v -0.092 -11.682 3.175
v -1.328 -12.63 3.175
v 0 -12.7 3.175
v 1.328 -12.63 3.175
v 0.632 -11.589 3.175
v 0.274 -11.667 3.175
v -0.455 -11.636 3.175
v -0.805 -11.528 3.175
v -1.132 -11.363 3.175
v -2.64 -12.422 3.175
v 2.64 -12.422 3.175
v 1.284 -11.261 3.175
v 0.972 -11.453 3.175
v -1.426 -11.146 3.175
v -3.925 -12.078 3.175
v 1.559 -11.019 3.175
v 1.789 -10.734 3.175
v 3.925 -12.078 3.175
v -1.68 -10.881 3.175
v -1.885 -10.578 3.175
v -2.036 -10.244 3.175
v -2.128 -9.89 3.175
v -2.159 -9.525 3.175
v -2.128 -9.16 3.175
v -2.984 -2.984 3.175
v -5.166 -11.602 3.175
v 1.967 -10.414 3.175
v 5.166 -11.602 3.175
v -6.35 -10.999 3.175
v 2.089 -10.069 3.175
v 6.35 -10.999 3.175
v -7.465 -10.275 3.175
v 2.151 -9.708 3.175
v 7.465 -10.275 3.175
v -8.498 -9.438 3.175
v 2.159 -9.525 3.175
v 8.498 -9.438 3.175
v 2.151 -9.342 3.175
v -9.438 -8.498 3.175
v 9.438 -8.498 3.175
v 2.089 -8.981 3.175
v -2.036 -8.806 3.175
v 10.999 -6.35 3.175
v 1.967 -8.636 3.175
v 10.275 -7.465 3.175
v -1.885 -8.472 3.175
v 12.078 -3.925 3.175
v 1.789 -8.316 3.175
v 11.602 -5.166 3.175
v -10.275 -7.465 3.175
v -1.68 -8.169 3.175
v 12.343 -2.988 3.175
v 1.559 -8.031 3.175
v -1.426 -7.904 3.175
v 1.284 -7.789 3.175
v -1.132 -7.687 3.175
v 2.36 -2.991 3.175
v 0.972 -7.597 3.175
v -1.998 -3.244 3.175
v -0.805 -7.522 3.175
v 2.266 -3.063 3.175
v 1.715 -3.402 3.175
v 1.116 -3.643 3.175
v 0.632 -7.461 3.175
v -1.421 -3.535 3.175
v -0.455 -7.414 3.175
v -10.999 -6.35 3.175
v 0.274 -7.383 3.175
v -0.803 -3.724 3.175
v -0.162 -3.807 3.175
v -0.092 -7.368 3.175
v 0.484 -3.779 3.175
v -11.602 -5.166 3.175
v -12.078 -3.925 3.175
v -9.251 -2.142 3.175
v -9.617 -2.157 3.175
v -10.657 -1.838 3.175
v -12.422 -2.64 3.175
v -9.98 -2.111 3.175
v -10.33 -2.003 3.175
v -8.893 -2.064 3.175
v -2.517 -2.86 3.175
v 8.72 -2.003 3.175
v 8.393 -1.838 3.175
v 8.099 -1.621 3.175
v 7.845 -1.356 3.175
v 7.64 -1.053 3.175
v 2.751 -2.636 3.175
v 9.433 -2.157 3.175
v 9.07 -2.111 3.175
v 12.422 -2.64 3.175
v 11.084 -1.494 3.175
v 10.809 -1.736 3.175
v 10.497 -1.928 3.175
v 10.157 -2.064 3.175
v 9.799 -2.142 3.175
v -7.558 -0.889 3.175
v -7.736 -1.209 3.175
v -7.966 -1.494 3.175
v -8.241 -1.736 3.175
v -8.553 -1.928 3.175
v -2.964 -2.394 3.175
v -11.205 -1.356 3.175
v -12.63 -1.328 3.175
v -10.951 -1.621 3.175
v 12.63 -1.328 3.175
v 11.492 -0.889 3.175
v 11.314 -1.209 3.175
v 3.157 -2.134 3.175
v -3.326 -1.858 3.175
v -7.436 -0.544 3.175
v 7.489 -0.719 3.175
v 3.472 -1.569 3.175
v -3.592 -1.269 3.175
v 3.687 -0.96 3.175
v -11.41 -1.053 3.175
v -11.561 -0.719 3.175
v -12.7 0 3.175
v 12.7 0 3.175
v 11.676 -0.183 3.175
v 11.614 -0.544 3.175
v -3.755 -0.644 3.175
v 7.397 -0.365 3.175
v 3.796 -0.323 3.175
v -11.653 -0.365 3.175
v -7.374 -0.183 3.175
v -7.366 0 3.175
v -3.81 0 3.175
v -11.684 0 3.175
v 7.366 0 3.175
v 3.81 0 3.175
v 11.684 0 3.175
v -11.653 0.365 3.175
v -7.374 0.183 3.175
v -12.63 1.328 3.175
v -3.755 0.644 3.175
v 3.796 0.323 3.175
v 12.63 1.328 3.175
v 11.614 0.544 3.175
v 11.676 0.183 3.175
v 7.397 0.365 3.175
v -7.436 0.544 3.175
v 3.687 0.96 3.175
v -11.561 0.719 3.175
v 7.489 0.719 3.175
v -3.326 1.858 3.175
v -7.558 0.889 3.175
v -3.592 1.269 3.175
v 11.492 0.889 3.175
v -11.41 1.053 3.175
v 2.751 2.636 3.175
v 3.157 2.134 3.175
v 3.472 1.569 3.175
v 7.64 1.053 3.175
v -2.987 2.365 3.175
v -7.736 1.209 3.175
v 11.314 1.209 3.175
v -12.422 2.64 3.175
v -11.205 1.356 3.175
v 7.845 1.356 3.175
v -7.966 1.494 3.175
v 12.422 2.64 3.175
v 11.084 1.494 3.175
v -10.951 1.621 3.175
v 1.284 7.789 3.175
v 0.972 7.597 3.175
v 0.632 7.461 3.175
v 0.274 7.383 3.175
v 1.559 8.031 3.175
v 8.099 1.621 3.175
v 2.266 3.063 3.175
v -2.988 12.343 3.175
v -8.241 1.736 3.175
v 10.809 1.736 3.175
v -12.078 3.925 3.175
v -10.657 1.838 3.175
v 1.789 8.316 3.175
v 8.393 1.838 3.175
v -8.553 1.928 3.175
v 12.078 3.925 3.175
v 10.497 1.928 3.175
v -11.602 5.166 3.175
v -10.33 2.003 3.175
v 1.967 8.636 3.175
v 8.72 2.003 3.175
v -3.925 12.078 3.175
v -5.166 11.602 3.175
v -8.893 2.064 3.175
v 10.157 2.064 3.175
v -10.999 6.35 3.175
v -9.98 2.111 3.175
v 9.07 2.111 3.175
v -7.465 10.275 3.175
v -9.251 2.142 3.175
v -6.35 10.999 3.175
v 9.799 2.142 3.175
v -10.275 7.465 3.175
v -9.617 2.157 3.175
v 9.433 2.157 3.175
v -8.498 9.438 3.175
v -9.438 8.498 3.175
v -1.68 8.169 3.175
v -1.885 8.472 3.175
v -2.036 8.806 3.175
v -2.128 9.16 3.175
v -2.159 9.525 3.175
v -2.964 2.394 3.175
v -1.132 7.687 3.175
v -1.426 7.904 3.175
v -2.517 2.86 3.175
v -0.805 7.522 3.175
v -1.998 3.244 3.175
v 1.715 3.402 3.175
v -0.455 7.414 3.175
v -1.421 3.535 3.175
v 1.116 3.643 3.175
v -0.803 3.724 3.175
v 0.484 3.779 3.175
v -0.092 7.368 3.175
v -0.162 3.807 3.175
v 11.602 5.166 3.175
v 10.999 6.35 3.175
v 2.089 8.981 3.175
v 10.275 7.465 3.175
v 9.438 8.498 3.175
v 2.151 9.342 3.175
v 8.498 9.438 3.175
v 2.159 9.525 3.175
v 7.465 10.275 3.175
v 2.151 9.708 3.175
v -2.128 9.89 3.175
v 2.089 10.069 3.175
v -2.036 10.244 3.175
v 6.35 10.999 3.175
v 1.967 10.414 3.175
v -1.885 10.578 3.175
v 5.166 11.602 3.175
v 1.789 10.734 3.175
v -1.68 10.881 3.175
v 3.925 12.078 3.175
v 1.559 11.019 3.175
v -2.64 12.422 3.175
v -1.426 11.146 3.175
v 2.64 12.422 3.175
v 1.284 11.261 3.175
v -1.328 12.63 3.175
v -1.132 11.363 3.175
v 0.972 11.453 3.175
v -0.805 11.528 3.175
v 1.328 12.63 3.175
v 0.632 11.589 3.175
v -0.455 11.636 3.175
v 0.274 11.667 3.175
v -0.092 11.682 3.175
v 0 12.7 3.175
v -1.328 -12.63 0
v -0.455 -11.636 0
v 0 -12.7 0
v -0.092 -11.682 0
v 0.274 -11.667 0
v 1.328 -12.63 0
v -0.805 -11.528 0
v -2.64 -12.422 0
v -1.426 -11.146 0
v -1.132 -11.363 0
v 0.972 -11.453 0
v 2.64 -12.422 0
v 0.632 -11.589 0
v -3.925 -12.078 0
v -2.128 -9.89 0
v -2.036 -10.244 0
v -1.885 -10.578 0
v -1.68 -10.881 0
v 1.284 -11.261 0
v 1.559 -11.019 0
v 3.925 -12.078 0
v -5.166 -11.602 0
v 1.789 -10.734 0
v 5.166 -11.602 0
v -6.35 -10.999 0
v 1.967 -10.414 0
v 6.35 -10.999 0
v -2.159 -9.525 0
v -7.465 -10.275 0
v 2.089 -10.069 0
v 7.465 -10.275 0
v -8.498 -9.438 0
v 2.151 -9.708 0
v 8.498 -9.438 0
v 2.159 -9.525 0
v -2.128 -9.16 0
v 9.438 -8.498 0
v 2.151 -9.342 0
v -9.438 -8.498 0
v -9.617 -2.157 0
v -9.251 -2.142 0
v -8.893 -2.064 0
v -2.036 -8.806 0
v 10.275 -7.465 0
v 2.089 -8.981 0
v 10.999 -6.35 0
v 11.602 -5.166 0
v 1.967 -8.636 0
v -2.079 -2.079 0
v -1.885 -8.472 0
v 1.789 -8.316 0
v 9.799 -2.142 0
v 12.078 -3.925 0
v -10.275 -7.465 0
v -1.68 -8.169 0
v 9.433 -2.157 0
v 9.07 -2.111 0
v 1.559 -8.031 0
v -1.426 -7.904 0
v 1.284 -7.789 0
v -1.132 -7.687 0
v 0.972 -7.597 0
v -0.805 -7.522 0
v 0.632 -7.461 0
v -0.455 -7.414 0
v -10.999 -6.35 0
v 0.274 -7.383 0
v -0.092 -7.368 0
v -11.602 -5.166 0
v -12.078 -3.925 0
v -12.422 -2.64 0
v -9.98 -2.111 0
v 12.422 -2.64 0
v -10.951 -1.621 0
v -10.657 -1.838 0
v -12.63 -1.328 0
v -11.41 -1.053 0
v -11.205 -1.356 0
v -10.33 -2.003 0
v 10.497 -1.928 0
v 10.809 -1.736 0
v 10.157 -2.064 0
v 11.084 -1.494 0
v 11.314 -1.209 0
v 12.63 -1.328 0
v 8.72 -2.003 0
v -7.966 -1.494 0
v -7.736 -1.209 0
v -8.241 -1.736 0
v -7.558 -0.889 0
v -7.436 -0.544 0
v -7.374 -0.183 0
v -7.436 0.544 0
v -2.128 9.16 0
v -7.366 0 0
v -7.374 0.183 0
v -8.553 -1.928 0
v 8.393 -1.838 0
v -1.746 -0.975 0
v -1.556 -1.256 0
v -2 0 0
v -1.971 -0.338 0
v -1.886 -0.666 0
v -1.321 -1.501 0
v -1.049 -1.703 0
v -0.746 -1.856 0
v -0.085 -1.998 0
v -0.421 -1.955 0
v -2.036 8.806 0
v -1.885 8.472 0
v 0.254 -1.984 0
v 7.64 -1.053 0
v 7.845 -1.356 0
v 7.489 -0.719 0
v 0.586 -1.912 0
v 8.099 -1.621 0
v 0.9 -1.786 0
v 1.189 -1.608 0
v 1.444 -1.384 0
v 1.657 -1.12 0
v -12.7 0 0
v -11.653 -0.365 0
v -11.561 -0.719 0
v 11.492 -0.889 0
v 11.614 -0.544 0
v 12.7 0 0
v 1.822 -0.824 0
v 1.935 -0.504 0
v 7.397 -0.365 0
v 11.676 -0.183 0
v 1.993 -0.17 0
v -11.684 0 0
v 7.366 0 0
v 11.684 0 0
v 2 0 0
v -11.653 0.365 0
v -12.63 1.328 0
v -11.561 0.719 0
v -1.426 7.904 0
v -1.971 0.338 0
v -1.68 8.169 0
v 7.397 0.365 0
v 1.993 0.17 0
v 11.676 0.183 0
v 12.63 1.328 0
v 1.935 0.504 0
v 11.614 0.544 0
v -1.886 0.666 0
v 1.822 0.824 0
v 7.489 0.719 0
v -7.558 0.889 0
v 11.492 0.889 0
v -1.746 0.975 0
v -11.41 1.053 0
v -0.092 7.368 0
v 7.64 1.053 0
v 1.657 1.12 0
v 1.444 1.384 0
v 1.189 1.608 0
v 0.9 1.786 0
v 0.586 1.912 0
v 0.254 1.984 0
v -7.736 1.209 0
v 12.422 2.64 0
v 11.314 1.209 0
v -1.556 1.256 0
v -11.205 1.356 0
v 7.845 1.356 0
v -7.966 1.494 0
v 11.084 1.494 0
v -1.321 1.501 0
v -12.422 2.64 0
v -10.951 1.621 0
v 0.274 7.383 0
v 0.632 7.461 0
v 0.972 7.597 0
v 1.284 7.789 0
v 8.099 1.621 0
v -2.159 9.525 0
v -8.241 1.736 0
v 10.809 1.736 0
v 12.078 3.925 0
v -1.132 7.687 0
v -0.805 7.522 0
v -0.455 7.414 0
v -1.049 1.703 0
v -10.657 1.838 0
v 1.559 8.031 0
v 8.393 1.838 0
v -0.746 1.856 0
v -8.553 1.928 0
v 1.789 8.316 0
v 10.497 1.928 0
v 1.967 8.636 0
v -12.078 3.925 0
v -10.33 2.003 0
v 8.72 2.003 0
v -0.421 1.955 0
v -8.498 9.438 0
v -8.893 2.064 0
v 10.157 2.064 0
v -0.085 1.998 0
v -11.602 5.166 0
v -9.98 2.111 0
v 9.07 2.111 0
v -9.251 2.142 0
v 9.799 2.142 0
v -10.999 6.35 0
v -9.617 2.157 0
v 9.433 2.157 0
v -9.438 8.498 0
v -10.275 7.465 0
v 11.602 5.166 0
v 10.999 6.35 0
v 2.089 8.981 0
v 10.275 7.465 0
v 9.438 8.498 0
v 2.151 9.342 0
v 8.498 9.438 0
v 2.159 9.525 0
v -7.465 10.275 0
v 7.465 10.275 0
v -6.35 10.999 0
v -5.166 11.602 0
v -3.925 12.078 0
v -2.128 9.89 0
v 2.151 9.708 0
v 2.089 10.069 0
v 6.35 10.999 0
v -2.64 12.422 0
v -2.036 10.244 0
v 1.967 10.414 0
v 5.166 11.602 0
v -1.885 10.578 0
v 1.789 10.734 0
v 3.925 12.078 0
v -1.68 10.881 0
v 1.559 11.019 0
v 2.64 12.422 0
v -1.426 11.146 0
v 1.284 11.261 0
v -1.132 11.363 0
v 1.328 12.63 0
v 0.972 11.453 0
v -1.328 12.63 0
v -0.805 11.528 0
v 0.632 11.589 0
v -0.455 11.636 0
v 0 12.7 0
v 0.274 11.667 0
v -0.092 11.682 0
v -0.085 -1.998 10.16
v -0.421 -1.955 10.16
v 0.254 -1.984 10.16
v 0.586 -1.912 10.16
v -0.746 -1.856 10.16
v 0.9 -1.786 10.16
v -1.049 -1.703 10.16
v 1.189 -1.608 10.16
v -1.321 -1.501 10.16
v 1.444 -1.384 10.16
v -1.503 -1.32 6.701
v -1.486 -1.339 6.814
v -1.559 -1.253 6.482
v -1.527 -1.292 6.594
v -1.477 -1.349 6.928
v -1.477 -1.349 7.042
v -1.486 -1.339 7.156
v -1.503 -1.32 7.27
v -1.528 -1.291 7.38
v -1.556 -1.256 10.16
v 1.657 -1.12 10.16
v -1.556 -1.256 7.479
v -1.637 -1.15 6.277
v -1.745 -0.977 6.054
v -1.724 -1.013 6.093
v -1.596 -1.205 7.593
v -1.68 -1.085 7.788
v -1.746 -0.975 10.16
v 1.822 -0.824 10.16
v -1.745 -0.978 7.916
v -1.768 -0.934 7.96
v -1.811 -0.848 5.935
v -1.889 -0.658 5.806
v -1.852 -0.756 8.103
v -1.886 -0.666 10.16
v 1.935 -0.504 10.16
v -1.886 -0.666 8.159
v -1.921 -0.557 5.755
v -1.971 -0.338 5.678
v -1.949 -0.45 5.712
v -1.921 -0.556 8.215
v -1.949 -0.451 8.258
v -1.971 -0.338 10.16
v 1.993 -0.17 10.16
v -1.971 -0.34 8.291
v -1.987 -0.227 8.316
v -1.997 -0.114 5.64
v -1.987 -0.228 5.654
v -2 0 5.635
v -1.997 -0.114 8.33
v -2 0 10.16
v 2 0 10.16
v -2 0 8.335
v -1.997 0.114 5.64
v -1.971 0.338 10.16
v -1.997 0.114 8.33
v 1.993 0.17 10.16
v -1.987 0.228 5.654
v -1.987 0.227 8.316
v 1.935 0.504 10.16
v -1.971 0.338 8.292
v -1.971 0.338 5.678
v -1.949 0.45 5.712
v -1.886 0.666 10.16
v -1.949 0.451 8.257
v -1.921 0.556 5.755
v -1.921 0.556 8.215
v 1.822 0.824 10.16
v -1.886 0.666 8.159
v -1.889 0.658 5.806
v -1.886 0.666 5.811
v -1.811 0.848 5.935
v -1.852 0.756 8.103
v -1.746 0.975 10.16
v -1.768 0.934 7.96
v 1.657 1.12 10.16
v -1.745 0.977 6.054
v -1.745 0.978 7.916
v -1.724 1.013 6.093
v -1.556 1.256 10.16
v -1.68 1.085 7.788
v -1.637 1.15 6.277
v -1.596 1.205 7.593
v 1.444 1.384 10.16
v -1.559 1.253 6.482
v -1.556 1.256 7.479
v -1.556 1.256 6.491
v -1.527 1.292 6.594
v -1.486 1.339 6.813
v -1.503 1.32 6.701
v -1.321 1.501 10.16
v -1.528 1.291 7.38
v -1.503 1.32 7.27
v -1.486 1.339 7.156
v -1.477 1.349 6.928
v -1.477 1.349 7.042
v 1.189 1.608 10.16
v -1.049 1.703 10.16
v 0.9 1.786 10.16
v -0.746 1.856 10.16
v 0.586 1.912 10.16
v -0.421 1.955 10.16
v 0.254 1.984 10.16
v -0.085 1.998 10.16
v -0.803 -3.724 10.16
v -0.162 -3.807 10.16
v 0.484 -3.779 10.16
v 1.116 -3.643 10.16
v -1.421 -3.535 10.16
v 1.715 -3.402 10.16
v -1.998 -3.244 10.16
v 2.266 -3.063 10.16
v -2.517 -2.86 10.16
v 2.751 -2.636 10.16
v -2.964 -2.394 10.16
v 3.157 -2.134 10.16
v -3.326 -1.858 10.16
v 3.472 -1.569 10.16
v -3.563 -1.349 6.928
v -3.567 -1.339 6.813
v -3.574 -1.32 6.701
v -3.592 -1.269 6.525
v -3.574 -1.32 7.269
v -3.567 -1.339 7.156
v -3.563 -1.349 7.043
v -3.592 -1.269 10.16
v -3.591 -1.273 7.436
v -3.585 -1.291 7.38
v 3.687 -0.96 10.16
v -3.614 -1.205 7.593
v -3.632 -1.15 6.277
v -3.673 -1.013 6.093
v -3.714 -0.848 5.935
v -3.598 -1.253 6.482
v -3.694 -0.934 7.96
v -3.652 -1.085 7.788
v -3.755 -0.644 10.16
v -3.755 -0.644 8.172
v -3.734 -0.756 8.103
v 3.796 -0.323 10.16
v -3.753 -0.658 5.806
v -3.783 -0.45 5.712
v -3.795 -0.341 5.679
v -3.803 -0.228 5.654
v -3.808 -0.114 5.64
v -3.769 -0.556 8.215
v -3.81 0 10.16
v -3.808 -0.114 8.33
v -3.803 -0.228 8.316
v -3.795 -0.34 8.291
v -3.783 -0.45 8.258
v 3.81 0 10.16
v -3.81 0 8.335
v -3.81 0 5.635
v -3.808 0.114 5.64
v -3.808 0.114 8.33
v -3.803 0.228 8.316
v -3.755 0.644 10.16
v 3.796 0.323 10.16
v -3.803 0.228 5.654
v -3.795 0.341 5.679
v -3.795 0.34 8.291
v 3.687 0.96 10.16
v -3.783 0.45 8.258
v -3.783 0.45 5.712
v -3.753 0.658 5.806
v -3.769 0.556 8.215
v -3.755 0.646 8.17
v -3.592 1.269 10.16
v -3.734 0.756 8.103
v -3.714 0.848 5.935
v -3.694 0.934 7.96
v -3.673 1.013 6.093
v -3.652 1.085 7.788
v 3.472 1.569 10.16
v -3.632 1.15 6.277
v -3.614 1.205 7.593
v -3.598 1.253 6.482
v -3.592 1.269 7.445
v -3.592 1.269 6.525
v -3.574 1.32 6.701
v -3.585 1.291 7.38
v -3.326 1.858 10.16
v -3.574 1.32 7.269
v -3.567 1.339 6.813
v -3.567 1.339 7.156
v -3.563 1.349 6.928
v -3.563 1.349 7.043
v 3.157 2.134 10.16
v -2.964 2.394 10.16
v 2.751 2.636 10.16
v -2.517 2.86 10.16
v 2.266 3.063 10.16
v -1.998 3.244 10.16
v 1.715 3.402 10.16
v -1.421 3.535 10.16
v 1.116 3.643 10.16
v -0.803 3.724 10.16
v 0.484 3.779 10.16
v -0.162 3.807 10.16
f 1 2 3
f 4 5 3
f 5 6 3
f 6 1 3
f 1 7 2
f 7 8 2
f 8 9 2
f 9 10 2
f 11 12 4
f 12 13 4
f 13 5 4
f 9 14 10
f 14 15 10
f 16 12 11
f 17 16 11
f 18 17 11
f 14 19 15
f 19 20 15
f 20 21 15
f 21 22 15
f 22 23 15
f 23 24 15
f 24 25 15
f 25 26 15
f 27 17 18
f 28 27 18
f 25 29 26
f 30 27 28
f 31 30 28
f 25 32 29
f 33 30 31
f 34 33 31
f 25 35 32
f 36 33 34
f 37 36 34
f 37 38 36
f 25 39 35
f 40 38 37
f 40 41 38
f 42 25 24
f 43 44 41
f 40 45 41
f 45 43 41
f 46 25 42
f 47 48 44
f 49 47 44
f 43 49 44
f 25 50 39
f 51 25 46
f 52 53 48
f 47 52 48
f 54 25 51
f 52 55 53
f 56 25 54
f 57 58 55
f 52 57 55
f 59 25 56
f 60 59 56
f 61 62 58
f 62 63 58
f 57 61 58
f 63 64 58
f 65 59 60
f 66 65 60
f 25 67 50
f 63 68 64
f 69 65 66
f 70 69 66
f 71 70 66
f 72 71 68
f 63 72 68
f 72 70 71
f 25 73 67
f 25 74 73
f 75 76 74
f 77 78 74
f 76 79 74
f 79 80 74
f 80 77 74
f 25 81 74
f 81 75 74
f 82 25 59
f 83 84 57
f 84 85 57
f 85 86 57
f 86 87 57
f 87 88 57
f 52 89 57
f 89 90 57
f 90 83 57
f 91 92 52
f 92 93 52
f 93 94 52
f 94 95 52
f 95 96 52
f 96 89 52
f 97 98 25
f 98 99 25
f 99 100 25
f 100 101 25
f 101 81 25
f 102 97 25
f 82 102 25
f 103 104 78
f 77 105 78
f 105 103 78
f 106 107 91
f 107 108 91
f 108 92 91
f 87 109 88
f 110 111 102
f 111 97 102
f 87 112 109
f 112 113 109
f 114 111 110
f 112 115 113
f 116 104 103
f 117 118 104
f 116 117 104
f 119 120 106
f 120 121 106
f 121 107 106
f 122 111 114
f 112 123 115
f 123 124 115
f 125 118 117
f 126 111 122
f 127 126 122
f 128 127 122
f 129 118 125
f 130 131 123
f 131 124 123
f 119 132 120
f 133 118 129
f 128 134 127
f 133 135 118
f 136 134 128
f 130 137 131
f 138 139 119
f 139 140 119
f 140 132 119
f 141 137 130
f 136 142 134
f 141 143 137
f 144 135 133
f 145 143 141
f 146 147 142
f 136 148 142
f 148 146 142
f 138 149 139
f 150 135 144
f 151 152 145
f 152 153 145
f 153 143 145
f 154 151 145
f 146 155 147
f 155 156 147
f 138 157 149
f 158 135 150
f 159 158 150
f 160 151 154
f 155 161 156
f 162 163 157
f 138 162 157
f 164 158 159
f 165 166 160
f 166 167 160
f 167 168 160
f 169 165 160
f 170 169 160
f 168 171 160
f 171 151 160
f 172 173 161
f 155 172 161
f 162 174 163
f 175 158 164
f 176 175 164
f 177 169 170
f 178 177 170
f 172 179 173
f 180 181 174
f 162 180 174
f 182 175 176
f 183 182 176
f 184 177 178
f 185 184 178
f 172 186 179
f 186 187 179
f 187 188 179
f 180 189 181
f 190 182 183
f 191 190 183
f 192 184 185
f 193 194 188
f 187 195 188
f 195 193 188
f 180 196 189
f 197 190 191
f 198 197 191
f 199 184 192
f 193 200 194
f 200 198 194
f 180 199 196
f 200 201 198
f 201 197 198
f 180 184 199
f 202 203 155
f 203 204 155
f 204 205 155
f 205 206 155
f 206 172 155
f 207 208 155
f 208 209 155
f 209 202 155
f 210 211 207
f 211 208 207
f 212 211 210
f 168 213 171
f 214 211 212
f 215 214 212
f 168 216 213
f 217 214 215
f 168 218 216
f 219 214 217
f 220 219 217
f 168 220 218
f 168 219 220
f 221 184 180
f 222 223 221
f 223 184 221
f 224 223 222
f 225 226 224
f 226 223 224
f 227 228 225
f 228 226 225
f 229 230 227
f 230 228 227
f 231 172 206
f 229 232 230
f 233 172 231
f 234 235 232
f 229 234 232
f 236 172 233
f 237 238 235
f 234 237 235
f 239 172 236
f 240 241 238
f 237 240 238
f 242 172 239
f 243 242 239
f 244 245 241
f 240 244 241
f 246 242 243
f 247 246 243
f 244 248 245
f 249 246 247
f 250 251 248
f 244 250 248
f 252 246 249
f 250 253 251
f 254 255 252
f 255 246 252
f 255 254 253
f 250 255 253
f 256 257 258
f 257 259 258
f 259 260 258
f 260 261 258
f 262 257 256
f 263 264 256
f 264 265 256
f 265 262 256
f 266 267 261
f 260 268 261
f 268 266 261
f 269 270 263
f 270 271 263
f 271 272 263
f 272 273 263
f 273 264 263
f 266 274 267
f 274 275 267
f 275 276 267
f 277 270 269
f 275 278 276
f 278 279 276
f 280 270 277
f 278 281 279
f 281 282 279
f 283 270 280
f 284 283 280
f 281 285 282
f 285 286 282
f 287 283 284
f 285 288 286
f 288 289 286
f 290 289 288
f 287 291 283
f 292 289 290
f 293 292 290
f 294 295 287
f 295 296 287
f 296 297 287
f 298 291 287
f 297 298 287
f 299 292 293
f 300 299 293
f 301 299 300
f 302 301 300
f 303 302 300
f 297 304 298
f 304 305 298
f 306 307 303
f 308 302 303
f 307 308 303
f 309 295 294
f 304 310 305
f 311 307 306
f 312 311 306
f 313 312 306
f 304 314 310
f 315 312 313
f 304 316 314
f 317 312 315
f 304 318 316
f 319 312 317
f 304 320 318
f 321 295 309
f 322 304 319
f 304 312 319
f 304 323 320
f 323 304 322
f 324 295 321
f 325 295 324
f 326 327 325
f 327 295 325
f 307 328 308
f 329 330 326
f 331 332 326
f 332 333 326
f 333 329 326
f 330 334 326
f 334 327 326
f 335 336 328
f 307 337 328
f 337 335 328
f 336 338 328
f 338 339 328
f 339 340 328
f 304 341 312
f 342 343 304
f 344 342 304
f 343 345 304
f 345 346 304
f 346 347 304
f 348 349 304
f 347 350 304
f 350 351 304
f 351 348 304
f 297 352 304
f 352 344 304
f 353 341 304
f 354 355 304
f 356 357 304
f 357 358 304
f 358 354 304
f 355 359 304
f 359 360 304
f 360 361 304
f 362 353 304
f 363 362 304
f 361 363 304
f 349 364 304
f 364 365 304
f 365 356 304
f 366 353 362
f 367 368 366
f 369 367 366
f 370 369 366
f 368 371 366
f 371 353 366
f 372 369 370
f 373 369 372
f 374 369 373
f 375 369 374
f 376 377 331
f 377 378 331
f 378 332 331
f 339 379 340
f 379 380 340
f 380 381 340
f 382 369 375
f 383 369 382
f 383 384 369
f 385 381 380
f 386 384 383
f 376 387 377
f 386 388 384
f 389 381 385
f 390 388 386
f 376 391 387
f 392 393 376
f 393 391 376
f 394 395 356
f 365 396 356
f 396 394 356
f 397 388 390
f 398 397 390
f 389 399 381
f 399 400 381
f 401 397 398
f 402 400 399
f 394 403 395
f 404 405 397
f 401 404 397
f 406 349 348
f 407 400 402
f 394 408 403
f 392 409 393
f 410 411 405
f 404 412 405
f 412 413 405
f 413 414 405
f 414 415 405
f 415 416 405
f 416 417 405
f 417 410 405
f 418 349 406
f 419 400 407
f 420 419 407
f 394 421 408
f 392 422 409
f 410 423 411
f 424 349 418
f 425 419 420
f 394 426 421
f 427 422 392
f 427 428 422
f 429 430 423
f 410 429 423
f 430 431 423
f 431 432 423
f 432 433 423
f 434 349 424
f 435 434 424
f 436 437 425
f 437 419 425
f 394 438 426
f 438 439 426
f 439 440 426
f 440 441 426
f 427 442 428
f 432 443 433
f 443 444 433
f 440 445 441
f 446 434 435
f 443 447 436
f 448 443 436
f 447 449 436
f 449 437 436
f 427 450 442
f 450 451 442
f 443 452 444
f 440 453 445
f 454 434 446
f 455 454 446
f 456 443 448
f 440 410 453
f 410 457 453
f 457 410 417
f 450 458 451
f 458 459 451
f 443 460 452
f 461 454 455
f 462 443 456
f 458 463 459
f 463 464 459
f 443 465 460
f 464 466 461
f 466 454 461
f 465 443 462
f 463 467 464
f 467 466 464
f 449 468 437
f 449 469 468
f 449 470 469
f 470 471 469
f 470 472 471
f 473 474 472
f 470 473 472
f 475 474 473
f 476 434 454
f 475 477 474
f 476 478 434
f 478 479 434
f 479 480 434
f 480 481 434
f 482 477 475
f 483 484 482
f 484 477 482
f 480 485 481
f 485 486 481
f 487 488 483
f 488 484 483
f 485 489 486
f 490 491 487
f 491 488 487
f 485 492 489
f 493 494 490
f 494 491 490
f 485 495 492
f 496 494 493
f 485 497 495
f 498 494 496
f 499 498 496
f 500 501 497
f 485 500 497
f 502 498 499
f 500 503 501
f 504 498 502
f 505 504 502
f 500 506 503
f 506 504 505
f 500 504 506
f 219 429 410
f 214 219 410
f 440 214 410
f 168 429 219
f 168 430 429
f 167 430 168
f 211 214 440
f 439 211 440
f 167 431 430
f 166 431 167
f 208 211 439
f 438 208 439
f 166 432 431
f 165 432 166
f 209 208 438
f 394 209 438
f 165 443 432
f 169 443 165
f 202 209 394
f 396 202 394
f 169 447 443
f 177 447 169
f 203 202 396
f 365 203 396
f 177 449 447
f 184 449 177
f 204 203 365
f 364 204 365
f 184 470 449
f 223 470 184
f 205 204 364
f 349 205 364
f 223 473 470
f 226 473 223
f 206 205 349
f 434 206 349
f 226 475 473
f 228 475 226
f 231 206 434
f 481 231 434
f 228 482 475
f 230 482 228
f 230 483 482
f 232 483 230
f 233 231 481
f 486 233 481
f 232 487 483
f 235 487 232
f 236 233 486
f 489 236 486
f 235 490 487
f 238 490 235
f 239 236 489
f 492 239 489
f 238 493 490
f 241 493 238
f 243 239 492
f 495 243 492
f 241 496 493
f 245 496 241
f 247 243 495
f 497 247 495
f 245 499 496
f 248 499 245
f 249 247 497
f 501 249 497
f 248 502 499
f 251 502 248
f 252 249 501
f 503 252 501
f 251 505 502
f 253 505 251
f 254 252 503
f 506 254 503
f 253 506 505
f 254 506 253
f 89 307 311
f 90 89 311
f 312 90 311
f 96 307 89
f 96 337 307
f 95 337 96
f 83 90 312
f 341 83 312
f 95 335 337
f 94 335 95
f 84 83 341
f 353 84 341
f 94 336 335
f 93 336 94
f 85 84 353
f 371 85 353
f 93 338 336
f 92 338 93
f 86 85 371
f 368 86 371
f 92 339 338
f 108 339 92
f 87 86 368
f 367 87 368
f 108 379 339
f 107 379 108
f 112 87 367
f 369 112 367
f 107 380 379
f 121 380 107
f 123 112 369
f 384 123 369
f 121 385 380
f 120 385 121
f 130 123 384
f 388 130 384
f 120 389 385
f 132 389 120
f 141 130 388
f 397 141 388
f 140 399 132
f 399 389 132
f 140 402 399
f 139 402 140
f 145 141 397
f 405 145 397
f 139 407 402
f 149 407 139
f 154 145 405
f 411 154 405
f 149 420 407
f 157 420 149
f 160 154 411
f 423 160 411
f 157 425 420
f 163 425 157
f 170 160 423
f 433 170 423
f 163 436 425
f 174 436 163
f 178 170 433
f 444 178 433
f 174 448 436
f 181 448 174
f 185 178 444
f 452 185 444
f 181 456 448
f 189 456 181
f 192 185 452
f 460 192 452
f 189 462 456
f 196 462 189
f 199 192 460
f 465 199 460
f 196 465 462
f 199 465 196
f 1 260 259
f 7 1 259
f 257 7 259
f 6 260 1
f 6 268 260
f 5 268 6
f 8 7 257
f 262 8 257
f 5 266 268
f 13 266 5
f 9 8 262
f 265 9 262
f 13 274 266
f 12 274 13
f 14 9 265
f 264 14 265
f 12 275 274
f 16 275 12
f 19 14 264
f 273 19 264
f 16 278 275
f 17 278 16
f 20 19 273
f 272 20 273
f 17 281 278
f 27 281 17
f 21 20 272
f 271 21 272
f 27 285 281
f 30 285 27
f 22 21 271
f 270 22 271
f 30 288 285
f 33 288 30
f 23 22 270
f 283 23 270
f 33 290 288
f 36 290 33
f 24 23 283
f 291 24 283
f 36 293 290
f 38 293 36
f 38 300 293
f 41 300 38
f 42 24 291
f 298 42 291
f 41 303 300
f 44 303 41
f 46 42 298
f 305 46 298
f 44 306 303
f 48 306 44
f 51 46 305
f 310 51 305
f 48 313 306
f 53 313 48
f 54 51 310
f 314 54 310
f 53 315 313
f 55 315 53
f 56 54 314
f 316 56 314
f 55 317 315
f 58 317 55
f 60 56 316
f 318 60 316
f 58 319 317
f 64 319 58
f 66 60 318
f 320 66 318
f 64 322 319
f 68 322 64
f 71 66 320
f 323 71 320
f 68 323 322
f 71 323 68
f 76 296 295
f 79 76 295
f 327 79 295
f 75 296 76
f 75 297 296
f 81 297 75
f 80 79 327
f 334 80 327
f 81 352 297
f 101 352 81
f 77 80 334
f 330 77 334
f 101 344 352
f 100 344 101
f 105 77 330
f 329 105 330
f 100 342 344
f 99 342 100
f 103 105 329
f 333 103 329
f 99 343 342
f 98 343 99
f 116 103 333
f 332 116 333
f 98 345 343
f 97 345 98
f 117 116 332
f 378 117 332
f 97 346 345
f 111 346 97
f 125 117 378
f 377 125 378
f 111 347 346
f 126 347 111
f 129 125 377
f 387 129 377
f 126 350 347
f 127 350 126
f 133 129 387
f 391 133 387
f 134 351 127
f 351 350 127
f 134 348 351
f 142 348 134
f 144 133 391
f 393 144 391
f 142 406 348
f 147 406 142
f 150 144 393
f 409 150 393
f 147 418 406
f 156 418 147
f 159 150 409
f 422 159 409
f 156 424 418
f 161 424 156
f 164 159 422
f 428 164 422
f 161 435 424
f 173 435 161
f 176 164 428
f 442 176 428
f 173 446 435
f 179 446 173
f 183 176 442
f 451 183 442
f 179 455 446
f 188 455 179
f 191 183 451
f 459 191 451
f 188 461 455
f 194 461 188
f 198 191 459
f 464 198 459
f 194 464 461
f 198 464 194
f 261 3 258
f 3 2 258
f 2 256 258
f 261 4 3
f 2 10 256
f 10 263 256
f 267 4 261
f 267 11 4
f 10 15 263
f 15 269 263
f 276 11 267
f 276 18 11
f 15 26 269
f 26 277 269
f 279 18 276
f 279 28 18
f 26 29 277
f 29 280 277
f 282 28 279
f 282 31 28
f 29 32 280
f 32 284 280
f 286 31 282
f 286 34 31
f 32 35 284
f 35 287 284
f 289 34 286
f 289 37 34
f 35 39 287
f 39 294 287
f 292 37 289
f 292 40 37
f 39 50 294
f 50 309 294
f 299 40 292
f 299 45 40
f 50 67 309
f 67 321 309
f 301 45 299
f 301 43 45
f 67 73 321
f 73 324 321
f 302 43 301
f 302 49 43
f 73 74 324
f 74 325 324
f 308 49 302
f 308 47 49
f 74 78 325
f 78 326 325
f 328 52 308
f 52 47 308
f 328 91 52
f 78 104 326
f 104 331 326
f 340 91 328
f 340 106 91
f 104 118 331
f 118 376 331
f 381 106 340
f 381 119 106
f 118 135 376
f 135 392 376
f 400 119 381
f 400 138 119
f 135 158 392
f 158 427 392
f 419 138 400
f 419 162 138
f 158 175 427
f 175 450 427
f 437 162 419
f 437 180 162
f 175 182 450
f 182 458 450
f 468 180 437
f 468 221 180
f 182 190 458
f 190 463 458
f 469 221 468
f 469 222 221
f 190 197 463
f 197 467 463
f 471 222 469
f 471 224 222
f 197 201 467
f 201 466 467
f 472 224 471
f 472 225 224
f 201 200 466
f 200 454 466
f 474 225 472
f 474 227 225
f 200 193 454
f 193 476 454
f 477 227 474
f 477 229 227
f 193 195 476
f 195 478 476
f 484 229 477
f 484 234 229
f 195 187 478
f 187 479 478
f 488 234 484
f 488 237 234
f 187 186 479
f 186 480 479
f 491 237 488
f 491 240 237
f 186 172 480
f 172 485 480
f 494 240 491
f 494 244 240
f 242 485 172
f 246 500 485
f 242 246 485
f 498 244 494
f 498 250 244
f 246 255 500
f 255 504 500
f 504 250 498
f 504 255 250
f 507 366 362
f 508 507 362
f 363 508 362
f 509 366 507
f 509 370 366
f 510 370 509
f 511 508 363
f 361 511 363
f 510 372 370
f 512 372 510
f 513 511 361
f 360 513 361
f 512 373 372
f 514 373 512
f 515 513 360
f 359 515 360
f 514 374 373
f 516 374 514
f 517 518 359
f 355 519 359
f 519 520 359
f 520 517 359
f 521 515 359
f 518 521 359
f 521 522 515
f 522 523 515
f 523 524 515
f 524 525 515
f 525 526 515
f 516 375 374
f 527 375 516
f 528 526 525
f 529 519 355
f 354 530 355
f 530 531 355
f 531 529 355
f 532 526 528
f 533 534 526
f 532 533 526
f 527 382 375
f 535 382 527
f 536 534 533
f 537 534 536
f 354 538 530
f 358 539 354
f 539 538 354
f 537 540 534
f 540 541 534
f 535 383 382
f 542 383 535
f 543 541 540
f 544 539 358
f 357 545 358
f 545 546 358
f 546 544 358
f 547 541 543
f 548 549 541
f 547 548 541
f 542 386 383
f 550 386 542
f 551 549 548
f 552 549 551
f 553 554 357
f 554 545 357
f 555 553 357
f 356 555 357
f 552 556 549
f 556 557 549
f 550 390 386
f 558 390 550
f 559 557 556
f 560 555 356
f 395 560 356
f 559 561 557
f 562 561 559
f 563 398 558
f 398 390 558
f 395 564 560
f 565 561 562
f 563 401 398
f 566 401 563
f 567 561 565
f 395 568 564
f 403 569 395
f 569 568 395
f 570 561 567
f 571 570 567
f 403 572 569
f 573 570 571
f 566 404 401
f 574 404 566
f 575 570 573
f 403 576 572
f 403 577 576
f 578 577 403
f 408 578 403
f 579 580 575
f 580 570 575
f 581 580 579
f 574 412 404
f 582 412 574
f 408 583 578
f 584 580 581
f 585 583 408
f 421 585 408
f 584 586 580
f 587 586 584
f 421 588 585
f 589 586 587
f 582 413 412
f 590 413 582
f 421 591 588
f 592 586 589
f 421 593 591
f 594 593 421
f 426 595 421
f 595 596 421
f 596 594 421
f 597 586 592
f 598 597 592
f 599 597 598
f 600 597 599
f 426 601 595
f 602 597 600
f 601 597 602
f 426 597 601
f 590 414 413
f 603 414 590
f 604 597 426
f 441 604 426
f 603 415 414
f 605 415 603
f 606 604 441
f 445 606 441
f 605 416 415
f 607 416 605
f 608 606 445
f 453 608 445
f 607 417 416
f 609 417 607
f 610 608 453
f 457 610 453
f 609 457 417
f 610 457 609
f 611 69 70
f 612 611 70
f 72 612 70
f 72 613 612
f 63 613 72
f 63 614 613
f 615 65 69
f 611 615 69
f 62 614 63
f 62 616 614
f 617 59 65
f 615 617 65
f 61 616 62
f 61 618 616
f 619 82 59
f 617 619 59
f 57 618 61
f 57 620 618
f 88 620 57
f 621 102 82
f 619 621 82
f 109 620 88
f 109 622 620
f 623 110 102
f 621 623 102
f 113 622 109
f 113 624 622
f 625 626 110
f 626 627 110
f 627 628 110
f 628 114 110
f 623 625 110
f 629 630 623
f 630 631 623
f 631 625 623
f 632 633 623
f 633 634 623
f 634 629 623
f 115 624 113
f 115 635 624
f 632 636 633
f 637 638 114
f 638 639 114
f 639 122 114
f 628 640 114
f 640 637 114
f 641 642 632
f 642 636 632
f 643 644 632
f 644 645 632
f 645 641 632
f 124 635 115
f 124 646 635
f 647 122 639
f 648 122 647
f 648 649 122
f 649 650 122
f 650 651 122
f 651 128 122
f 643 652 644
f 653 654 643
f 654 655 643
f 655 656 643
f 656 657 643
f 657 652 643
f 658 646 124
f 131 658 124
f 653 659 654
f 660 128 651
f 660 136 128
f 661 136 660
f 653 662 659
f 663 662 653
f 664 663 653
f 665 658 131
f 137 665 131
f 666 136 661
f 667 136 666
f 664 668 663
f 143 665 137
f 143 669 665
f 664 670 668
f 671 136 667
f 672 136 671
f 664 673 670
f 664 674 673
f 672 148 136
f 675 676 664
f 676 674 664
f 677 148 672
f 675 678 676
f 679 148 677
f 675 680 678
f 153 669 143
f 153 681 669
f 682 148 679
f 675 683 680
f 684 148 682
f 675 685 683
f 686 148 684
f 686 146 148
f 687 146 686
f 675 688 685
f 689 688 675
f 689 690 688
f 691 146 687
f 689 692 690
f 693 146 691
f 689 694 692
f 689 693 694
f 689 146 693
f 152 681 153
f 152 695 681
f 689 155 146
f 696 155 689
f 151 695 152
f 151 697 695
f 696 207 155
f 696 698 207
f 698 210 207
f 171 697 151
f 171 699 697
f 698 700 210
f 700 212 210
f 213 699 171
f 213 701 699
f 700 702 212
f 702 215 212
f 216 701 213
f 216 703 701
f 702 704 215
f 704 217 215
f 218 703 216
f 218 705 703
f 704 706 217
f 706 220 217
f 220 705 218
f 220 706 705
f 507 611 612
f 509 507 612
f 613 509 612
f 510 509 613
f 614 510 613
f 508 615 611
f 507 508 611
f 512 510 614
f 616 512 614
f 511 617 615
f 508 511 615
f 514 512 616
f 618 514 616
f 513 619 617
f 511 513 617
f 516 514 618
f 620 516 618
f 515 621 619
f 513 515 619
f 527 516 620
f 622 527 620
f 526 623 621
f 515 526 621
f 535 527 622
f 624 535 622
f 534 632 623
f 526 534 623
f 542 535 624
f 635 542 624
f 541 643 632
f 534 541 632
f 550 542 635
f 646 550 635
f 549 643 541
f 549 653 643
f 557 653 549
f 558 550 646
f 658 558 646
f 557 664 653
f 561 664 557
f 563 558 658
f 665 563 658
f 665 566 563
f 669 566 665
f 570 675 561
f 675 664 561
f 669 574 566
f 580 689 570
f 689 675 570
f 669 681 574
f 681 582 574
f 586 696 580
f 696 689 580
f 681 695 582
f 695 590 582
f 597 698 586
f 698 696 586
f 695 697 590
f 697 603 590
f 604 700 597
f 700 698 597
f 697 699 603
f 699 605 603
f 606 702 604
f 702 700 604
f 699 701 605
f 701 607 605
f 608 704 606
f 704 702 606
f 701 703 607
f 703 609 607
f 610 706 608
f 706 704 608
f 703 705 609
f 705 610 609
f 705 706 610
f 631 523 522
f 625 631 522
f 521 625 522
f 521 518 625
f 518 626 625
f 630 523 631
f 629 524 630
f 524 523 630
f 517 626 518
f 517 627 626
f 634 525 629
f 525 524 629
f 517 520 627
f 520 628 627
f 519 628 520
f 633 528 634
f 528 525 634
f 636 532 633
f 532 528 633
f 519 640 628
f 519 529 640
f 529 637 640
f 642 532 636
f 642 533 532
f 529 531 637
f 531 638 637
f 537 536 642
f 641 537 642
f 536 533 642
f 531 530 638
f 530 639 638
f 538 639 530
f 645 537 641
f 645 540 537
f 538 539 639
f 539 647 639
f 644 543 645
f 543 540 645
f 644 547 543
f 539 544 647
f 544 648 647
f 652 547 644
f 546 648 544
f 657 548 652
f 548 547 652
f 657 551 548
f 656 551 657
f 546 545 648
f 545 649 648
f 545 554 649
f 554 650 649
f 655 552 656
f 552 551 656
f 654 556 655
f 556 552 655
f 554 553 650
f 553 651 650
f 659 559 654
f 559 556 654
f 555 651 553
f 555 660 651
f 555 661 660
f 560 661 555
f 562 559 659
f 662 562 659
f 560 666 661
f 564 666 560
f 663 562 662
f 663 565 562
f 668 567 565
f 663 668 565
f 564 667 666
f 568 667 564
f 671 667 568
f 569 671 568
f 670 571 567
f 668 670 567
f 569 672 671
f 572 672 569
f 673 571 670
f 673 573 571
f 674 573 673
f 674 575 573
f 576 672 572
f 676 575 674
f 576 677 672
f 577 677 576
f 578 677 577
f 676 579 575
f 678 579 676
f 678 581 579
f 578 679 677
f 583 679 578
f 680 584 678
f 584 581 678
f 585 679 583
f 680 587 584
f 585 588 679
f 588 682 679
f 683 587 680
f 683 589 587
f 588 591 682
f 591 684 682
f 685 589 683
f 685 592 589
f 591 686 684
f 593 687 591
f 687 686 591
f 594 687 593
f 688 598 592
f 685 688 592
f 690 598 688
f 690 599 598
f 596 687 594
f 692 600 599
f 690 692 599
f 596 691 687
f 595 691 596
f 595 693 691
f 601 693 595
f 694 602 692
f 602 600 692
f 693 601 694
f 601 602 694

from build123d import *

# Parameters (mm, degrees)
SKETCH2_R           = 12.7
SKETCH2_R_2         = 3.81
SKETCH2_R_3         = 2.159
BOSS_EXTRUDE1_DEPTH = 3.175
SKETCH2_3_R         = 3.81
SKETCH2_3_R_2       = 2
BOSS_EXTRUDE2_DEPTH = 10.16
SKETCH4_R           = 1.35
CUT_EXTRUDE1_DEPTH  = 12.7


with BuildPart() as part:
    # Sketch2 → Boss-Extrude1 (new body)
    with BuildSketch(Plane.XY):
        Circle(SKETCH2_R)
        Circle(SKETCH2_R_2, mode=Mode.SUBTRACT)
        with Locations((0, 9.525)):
            Circle(SKETCH2_R_3, mode=Mode.SUBTRACT)
        with Locations((9.525, 0)):
            Circle(SKETCH2_R_3, mode=Mode.SUBTRACT)
        with Locations((0, -9.525)):
            Circle(SKETCH2_R_3, mode=Mode.SUBTRACT)
        with Locations((-9.525, 0)):
            Circle(SKETCH2_R_3, mode=Mode.SUBTRACT)
    extrude(amount=BOSS_EXTRUDE1_DEPTH)

    # Sketch2<3> → Boss-Extrude2 (add)
    with BuildSketch(Plane.XY):
        Circle(SKETCH2_3_R)
        Circle(SKETCH2_3_R_2, mode=Mode.SUBTRACT)
    extrude(amount=BOSS_EXTRUDE2_DEPTH)

    # Sketch4 → Cut-Extrude1 (cut)
    with BuildSketch(Plane(origin=(0, 0, 0), x_dir=(0, 0, -1), z_dir=(1, 0, 0))):
        with Locations((-6.985, 0)):
            Circle(SKETCH4_R)
    extrude(amount=-CUT_EXTRUDE1_DEPTH, mode=Mode.SUBTRACT)


solid = part.part
